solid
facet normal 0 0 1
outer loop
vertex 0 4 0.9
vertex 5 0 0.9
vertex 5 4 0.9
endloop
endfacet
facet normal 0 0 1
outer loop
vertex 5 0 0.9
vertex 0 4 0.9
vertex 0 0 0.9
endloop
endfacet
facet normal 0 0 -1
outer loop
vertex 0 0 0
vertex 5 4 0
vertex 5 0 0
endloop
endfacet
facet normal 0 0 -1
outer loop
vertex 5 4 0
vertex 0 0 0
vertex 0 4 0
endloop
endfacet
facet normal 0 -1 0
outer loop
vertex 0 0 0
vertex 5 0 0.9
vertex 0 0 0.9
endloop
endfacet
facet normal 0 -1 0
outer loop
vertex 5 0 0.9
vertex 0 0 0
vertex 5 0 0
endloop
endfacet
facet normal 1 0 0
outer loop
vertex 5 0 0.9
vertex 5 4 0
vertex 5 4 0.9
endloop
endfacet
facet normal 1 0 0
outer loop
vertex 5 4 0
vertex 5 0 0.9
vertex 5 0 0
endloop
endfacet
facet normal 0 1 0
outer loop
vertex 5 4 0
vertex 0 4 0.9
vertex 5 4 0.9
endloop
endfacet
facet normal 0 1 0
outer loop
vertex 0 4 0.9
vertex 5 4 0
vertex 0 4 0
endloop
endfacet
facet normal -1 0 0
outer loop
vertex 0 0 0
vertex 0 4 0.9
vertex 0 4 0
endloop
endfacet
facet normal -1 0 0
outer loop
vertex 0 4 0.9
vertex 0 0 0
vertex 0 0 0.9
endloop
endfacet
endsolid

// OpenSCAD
/* Warning, this is a very basic generator with a lot of approximation 
input data : [VQFN, PAA, 5x4x0.9mm, 28, , A, C04-01116A]
generated by com.zoubworld.electronics.cad.model3d.Basic
Date : Sun Feb 15 10:50:49 CET 2026
*/

//body
color("black")
translate([0,0,0])
cube([5.0,4.0,0.9], center=false);
